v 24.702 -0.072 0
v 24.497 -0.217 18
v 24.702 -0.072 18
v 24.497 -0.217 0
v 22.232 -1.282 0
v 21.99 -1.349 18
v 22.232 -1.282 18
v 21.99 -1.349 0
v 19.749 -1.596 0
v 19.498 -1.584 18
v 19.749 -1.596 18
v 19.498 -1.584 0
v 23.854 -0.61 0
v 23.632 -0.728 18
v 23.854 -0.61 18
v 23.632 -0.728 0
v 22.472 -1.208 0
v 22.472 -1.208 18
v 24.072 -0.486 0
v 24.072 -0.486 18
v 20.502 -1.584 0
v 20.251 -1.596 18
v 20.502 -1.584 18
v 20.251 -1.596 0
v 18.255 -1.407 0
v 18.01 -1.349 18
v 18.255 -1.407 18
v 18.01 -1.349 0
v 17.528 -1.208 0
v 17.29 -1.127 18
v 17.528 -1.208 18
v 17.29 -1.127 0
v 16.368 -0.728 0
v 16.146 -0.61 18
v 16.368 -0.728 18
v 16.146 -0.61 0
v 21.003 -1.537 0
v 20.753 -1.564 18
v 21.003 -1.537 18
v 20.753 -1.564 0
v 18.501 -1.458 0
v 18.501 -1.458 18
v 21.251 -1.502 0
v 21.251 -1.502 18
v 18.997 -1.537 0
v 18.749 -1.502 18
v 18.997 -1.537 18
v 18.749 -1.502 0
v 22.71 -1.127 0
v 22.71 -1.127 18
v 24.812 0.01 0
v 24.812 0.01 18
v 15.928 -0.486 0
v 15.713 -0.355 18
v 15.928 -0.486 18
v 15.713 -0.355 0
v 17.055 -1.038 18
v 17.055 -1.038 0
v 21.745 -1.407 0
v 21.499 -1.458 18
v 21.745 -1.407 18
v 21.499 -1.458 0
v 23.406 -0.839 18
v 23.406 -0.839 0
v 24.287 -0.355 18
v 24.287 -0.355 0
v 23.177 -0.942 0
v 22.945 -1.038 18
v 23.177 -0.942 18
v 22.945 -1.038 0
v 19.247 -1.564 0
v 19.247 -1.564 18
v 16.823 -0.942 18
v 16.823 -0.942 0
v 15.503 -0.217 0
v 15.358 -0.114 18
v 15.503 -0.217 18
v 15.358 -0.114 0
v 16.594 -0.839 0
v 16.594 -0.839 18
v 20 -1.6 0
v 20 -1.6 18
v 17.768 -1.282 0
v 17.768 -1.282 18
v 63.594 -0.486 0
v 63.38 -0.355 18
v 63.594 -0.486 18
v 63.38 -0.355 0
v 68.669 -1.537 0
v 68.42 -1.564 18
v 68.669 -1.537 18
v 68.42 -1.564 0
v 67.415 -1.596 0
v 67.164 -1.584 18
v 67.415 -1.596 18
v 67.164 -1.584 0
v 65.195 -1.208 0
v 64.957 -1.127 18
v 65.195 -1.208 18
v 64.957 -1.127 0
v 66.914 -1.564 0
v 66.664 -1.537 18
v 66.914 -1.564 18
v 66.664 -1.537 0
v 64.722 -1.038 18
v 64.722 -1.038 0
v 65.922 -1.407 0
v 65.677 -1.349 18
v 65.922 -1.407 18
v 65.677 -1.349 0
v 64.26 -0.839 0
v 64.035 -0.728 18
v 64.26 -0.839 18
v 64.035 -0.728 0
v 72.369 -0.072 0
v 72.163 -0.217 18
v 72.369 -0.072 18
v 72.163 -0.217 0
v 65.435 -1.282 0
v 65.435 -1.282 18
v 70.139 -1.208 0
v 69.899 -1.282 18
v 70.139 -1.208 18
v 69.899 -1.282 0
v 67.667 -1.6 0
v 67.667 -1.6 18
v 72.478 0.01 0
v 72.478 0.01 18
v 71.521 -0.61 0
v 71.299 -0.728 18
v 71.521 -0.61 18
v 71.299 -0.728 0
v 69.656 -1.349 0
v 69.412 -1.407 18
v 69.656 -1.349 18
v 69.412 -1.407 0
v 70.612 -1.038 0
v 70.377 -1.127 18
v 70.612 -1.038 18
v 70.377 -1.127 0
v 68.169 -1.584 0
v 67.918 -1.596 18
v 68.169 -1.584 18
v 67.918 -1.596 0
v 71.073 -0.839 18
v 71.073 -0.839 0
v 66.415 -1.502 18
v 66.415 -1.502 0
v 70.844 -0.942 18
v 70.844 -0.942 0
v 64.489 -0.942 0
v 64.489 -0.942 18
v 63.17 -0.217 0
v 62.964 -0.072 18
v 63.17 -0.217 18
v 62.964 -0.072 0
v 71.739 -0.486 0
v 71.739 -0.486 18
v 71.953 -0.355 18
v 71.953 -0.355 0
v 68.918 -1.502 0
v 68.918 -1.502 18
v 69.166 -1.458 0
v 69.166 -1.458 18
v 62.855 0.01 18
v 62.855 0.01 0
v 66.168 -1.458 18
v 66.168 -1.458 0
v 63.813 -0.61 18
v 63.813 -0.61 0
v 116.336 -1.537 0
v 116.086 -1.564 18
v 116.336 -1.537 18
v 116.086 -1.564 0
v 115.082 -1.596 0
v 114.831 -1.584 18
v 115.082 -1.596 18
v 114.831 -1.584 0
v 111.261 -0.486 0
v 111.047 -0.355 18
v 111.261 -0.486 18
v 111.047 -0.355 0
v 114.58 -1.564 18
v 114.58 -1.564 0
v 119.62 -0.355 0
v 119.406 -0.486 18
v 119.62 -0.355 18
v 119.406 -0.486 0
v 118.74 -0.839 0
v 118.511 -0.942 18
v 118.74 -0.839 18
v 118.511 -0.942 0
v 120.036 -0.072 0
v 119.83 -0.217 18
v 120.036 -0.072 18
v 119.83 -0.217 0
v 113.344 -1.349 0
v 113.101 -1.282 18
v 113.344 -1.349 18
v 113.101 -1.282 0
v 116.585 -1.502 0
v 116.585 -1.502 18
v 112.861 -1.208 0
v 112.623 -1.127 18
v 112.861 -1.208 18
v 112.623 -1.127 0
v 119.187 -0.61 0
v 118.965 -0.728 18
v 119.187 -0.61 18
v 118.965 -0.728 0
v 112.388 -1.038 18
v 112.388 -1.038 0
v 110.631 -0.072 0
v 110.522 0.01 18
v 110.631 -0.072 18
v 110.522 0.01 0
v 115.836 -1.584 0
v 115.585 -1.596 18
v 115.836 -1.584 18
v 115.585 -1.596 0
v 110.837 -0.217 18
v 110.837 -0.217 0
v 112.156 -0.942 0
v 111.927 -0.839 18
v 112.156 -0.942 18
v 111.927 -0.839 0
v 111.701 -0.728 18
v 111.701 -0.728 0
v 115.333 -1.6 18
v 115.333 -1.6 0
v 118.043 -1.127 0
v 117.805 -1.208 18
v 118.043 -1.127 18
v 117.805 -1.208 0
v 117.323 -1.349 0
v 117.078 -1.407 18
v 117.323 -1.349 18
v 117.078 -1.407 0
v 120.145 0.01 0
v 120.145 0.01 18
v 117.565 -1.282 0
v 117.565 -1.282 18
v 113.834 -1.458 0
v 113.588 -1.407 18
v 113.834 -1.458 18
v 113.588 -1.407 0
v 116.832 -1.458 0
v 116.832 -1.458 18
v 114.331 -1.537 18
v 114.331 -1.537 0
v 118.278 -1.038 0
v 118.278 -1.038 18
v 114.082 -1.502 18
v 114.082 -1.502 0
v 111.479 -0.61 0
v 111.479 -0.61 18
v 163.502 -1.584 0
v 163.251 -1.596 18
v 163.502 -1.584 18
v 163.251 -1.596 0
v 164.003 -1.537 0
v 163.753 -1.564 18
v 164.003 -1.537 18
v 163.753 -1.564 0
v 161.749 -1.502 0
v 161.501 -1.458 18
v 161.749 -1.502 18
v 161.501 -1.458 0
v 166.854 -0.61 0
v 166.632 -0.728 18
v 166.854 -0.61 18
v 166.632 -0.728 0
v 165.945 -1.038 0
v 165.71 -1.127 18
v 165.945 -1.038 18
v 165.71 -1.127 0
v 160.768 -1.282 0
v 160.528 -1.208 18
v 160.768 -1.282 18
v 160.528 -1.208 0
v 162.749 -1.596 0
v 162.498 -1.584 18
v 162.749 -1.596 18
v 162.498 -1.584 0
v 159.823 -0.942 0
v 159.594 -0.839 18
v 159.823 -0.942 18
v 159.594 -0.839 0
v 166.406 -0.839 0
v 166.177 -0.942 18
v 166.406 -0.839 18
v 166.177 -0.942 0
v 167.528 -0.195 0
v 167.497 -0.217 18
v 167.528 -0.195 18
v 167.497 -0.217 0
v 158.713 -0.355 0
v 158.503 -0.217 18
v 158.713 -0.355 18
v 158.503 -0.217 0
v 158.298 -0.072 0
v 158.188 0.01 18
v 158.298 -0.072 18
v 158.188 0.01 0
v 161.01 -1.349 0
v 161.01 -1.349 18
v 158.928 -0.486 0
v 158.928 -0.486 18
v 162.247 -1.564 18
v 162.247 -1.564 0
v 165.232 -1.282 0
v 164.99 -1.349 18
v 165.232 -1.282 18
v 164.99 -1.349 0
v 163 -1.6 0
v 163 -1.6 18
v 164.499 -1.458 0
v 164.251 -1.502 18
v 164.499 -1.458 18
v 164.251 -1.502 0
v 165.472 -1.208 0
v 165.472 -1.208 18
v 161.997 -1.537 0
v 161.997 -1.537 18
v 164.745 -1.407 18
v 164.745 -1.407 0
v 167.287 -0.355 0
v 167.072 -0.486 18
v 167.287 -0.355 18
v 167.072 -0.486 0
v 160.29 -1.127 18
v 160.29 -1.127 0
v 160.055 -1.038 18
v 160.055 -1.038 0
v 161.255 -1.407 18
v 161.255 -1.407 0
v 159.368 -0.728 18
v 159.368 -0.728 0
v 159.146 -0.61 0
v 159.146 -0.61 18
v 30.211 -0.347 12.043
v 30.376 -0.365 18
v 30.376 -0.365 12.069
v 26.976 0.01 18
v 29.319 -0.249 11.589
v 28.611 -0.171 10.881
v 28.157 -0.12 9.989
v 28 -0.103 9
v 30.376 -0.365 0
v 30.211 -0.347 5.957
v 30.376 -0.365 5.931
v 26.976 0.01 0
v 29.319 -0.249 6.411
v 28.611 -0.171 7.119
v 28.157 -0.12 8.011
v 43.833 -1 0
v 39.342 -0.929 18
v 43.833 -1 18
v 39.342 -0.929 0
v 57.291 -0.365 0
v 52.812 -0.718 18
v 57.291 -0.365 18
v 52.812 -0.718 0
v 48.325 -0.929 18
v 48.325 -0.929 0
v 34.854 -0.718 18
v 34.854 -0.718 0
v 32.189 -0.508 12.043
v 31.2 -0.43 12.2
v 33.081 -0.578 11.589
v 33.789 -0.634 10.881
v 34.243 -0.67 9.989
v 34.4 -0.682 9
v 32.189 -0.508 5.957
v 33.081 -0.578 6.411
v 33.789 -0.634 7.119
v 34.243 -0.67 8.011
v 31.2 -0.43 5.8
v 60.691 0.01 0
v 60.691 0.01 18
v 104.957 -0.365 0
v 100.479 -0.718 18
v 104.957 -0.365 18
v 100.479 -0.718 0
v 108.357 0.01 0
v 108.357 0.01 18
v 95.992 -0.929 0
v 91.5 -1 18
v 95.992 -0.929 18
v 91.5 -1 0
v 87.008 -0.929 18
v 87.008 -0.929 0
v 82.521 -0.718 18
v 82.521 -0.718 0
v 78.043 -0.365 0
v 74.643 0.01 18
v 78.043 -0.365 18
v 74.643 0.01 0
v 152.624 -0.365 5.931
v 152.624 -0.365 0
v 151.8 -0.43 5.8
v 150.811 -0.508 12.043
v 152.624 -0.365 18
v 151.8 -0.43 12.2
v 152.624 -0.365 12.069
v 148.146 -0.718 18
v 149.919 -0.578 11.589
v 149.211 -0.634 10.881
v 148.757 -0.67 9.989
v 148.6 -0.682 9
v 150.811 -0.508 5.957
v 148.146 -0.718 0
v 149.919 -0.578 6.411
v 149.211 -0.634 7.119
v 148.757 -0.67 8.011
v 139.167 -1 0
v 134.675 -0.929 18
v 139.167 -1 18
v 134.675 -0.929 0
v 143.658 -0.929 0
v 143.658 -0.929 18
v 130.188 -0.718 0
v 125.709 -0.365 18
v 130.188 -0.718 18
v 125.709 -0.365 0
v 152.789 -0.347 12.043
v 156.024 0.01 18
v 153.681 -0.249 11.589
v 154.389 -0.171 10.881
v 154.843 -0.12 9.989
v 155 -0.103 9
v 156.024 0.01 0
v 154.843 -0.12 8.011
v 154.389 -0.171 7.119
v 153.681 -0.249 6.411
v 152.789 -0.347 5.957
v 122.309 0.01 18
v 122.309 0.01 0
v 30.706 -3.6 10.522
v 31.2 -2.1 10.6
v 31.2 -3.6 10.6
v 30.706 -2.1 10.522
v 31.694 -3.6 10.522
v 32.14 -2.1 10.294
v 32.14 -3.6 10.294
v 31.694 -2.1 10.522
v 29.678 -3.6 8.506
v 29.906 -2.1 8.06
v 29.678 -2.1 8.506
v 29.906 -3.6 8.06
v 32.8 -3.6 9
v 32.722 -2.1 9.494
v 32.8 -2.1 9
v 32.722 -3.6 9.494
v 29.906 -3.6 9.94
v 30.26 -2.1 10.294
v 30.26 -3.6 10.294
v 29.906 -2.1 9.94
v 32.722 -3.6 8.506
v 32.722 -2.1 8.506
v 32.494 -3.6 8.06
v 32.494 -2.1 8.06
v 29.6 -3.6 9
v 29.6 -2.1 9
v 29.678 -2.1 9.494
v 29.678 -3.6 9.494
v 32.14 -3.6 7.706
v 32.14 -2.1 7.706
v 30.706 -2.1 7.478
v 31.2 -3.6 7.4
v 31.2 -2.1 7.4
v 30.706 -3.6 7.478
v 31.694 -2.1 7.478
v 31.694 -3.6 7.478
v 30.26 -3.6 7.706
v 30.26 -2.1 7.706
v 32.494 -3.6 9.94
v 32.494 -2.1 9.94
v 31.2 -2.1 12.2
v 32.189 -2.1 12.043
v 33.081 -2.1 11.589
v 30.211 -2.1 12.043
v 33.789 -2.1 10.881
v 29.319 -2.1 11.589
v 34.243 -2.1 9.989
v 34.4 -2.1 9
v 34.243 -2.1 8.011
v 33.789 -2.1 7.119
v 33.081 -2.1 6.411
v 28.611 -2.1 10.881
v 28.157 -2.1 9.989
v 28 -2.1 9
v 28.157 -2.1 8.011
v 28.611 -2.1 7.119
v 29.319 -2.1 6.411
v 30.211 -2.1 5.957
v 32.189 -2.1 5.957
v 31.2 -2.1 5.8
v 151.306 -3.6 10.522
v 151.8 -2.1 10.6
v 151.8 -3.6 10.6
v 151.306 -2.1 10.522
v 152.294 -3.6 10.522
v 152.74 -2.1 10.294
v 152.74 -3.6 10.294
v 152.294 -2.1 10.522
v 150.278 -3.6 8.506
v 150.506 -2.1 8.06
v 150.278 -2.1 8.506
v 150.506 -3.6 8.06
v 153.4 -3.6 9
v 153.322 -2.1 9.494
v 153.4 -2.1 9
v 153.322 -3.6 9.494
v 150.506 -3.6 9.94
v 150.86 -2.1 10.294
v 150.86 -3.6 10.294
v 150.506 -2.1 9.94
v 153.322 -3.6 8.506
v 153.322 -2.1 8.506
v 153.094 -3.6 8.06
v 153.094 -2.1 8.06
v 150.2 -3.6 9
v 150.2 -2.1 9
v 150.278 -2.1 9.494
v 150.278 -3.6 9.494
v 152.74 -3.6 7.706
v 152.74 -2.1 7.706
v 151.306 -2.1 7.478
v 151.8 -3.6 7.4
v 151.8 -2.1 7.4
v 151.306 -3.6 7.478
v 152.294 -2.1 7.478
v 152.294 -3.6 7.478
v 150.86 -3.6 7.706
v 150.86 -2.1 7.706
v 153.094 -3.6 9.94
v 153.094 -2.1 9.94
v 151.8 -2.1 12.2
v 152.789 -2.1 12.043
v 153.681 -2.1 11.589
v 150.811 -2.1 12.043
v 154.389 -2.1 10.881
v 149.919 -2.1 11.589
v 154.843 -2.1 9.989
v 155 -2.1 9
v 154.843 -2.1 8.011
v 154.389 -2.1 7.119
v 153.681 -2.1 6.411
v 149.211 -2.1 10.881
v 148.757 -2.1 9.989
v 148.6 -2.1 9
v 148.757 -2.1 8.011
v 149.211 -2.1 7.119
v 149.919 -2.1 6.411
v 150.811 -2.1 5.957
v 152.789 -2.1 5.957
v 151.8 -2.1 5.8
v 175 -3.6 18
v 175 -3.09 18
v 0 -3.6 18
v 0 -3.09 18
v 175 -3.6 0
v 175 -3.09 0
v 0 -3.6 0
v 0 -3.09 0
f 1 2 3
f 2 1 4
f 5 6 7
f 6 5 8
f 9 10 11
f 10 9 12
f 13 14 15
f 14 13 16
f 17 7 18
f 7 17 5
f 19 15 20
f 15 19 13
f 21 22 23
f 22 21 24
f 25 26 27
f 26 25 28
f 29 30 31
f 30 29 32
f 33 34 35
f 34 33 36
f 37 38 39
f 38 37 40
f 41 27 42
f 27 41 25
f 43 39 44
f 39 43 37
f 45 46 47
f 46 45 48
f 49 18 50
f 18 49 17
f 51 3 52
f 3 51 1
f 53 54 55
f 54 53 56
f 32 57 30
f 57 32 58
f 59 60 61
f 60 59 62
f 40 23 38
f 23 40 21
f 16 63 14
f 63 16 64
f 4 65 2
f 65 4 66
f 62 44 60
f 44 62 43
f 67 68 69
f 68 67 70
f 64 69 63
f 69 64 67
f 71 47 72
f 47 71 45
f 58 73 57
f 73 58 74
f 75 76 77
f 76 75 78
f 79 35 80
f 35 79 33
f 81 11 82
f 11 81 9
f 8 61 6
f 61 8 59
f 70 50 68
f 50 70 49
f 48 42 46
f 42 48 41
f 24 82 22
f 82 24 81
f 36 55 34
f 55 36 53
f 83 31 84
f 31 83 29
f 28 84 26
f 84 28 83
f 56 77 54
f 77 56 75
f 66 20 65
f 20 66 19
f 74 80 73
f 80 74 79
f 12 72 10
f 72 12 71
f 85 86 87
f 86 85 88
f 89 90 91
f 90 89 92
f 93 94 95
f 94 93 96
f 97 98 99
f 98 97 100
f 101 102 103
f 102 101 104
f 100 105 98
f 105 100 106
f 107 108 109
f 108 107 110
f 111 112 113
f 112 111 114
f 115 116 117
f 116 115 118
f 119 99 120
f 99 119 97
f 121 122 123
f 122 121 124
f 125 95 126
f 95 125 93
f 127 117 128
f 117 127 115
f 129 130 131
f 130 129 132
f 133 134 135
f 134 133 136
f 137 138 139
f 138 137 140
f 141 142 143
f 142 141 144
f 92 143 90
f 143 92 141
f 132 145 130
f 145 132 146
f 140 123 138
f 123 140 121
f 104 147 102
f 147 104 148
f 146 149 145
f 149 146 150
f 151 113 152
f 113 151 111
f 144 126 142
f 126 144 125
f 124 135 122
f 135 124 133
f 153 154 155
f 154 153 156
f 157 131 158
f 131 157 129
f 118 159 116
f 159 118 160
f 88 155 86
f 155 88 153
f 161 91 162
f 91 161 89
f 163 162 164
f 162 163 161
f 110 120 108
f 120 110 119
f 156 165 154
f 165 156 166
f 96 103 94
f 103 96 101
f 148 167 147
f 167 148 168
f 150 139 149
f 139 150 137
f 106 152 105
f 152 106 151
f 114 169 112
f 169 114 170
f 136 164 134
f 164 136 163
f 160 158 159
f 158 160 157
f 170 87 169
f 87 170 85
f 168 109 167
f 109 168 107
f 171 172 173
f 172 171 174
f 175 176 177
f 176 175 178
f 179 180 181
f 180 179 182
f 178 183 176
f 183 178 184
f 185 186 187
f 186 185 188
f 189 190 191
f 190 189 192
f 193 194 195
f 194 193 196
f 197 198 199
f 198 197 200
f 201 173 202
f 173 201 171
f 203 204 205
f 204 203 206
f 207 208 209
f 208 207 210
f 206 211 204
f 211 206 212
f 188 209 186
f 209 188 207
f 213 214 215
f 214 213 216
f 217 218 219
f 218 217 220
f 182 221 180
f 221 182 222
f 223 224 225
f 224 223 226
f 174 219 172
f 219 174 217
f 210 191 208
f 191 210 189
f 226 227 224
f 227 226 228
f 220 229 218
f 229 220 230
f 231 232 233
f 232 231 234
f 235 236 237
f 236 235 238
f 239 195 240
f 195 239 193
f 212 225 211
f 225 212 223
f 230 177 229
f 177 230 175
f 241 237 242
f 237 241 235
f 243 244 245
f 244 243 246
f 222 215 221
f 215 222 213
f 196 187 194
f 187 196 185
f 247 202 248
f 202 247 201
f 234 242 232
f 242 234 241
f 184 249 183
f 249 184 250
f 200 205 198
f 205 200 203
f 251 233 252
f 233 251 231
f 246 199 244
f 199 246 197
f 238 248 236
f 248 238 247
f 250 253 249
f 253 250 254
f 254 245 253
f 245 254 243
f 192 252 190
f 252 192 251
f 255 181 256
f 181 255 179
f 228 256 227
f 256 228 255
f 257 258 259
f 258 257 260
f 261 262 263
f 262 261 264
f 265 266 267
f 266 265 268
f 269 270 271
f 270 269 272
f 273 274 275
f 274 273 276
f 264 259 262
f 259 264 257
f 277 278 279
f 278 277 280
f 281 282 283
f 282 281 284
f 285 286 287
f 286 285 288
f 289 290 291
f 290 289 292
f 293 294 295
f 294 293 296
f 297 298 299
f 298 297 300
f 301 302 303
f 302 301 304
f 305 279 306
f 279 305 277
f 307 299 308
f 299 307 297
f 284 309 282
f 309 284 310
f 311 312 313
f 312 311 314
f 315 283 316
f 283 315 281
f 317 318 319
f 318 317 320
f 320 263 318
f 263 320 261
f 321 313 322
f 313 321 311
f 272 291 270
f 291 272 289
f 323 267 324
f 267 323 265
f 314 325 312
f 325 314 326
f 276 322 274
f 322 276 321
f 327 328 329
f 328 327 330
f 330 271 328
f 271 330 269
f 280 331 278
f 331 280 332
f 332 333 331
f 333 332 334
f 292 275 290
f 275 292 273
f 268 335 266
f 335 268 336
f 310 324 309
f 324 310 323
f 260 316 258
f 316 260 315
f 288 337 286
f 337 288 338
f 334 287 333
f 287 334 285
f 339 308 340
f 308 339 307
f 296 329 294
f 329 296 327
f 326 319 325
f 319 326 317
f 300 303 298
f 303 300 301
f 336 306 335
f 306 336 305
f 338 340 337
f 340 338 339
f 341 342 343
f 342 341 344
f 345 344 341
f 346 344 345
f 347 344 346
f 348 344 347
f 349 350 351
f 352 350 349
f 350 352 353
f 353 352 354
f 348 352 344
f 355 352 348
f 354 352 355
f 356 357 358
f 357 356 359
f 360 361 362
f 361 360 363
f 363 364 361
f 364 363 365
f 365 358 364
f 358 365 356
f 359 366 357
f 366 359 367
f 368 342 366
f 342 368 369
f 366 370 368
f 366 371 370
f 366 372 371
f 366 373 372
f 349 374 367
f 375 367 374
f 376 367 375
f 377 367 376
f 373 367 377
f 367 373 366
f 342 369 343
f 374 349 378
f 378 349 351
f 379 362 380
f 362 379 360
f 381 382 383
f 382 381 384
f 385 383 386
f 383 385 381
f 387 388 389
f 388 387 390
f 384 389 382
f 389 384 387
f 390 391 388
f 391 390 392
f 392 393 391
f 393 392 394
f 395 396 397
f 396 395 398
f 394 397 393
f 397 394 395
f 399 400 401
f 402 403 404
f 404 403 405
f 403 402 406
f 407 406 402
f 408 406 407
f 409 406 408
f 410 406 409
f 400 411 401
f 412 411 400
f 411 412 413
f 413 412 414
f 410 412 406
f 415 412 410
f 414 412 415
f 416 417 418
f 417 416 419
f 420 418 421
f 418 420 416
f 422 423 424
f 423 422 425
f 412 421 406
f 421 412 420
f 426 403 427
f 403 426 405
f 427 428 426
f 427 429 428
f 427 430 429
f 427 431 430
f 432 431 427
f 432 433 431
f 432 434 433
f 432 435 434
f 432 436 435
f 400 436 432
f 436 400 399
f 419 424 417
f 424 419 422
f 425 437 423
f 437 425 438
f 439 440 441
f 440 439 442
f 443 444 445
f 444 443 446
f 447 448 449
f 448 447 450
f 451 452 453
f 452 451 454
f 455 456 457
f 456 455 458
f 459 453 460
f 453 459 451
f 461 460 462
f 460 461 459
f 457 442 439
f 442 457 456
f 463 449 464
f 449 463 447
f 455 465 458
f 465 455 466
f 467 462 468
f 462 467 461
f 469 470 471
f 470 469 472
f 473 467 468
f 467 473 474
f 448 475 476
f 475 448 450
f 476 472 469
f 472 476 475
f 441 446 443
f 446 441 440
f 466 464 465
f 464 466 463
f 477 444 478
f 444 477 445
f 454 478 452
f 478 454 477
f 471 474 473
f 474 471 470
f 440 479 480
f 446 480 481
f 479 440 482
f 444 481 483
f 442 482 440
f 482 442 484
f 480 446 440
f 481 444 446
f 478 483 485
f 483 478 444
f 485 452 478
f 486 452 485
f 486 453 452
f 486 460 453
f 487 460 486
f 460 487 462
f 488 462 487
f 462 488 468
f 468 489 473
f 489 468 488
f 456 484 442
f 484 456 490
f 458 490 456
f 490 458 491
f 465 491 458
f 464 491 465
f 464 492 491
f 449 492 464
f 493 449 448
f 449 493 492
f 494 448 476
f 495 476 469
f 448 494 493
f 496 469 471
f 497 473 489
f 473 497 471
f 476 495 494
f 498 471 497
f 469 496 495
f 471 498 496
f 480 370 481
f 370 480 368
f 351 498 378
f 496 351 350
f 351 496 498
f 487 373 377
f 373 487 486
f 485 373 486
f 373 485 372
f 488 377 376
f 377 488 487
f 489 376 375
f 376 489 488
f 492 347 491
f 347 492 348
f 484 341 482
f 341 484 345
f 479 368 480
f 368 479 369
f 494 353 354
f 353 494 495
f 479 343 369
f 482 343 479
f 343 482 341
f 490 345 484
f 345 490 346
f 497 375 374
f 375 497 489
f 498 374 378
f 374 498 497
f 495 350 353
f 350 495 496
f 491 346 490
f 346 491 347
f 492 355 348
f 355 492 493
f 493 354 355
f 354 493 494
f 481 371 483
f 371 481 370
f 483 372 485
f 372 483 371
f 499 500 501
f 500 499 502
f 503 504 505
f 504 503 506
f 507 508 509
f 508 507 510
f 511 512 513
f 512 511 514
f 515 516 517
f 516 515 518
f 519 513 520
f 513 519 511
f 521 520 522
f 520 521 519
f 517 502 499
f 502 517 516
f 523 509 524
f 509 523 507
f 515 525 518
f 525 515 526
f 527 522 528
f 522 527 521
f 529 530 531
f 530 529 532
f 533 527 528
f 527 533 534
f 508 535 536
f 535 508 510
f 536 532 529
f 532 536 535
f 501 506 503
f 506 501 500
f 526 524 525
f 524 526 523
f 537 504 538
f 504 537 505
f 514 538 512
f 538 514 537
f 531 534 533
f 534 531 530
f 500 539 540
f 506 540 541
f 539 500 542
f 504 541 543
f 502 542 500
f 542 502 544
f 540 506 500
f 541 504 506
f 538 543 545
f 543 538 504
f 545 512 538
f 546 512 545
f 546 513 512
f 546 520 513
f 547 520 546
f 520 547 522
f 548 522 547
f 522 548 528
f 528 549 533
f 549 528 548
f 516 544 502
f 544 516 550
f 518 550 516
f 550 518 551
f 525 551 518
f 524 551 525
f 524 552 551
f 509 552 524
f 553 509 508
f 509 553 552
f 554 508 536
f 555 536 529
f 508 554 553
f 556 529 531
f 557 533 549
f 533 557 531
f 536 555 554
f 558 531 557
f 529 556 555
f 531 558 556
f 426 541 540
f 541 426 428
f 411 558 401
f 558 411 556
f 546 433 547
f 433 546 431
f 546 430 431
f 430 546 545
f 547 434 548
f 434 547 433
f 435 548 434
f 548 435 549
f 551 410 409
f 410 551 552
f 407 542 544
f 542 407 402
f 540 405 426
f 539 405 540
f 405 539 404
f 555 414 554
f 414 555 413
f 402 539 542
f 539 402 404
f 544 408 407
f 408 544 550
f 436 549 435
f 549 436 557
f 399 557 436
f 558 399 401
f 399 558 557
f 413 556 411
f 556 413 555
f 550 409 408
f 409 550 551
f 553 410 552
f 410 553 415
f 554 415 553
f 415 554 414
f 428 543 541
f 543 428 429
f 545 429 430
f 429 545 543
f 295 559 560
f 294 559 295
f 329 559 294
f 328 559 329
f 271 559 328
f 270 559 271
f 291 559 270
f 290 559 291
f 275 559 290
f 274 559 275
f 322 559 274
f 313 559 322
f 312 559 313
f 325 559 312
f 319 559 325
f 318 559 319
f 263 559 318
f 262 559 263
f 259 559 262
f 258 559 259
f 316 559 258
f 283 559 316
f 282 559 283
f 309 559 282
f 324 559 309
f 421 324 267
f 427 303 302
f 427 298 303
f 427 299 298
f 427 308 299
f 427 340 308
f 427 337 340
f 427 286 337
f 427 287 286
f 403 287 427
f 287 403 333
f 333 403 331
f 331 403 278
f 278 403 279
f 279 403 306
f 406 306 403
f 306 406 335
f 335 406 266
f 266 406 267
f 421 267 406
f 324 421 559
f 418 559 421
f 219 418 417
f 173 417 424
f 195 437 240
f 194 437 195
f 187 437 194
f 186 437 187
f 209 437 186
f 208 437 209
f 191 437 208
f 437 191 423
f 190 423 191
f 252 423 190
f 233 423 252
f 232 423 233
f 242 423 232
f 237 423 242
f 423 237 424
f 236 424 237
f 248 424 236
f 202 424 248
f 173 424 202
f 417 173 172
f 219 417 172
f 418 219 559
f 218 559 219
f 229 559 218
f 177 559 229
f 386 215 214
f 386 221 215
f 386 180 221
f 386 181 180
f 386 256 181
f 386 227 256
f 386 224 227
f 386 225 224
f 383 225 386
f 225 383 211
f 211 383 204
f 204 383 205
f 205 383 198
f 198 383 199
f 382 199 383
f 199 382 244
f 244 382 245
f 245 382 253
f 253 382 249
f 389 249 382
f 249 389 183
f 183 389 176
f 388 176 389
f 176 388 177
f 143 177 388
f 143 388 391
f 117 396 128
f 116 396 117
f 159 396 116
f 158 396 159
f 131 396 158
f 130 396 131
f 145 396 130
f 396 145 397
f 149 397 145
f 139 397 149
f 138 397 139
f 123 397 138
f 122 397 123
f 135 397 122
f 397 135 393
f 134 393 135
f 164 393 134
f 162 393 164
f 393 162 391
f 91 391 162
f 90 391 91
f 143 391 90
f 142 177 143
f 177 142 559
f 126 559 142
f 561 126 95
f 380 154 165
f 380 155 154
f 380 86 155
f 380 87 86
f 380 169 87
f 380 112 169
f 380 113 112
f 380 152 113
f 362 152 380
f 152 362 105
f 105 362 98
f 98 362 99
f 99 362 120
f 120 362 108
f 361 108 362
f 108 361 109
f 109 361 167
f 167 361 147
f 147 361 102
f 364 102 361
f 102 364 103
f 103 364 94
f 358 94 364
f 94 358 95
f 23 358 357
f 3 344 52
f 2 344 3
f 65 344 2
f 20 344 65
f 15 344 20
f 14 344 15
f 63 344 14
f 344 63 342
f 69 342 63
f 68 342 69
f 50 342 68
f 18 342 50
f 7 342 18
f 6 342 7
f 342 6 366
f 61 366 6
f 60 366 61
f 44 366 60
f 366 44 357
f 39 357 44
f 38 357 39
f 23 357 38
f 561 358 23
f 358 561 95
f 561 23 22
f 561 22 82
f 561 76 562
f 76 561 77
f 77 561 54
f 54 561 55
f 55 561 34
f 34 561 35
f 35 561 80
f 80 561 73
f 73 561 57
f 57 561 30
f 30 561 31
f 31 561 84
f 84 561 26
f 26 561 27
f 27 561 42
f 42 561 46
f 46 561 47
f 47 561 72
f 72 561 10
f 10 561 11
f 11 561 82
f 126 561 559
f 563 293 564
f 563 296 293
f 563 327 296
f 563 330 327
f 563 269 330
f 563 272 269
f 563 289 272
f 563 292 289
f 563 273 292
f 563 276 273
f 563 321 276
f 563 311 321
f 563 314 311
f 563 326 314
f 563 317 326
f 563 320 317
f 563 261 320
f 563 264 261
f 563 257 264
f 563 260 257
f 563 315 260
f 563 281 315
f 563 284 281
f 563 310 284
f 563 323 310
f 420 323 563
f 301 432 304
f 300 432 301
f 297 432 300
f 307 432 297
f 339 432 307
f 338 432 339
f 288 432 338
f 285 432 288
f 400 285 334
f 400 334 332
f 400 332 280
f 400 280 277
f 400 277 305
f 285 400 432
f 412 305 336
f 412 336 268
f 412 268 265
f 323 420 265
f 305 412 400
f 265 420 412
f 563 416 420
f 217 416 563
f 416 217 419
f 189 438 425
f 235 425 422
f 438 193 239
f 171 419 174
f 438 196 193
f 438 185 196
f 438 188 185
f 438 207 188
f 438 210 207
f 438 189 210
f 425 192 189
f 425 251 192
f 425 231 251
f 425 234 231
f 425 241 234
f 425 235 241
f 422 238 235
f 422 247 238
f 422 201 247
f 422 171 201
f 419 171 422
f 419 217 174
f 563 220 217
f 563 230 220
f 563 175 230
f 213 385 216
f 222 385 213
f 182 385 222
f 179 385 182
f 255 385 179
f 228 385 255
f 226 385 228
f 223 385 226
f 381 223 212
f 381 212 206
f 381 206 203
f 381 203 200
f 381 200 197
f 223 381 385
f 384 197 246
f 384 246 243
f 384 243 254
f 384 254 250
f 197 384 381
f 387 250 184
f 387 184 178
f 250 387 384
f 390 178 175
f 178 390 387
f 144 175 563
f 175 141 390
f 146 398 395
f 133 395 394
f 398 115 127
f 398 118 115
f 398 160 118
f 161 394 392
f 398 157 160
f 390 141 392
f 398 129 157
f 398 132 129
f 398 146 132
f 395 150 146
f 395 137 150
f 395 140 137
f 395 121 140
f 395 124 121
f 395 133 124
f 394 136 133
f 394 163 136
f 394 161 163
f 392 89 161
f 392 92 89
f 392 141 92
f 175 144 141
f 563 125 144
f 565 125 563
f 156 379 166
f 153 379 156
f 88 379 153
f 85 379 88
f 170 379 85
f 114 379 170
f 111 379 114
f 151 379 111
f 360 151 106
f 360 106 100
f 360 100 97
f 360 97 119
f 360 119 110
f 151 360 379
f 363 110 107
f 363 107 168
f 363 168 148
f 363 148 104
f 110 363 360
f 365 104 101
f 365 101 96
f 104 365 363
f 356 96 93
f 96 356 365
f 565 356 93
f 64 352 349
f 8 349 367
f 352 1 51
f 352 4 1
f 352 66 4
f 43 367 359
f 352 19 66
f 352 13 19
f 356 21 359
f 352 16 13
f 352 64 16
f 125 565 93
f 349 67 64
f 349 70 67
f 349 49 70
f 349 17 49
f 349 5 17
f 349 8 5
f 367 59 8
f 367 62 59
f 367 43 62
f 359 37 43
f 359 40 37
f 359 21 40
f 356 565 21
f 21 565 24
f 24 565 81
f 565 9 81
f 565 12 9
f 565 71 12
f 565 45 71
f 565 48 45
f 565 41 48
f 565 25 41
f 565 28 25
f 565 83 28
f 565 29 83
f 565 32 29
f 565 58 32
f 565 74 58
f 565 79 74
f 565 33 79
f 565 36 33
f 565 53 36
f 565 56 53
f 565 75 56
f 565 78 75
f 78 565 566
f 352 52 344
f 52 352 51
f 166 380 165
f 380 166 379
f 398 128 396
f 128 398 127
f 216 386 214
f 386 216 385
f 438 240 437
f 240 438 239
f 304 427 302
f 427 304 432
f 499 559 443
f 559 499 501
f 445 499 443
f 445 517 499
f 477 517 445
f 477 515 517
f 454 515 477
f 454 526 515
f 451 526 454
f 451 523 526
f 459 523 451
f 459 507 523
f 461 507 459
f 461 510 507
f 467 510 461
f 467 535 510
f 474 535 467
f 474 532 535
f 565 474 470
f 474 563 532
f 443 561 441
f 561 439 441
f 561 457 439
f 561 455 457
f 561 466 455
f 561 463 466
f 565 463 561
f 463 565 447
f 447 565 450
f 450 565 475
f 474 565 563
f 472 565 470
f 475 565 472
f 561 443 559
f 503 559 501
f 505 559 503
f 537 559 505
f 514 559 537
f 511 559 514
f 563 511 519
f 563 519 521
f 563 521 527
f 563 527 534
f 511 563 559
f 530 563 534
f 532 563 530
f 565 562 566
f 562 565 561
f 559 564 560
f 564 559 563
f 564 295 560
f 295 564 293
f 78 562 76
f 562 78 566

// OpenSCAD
LENGTH    = 175;
WIDTH     = 18;

SINK      =  1.6;
THICKNESS =  SINK + 2;

WHEEL_D   = 16;
SLANT_L   = 16;
SHIFT     = 4;
N         = 4;

ATOM = 0.01;
$fn  = 200;

module profile(th) {
    difference() {
        hull() {
            // front
            translate([SLANT_L*.75+SHIFT, 0, 0])
            cube([LENGTH-SLANT_L*1.5, ATOM, th]);

            // back
            translate([0, -THICKNESS, 0])
            cube([LENGTH, ATOM, th]);

            // mid
            translate([0, -THICKNESS+.5, 0])
            cube([LENGTH, ATOM, th]);
        }
        ratchets();
    }
}

module ratchets() {
    spacing = (LENGTH - SLANT_L*2) / (N-1);
    for (i=[0:N-1])
        translate([SLANT_L + SHIFT + i*spacing, WHEEL_D/2 - SINK, 0])
        cylinder(d=WHEEL_D, h=WIDTH*6, center=true);

    r = spacing*3;
    for (i=[0:N-2])
        translate([SLANT_L + SHIFT + spacing/2 + i*spacing, r-1, 0])
        cylinder(r=r, h=WIDTH*6, center=true);
}

module rail() {
    difference() {
        profile(WIDTH);

        // screws
        d = WHEEL_D*.7;
        for(x=[SLANT_L+SHIFT + d, LENGTH-SLANT_L+SHIFT - d]) {
            translate([x, 0, WIDTH/2])
            rotate([-90, 0, 0]) {
                screw_d = 3.2;
                cylinder(d=screw_d, h=20, center=true, $fn=20);

                translate([0, 0, -THICKNESS + 1.5])
                cylinder(d=screw_d*2, h=20, $fn=20);
            }
        }
    }
}

rail();
